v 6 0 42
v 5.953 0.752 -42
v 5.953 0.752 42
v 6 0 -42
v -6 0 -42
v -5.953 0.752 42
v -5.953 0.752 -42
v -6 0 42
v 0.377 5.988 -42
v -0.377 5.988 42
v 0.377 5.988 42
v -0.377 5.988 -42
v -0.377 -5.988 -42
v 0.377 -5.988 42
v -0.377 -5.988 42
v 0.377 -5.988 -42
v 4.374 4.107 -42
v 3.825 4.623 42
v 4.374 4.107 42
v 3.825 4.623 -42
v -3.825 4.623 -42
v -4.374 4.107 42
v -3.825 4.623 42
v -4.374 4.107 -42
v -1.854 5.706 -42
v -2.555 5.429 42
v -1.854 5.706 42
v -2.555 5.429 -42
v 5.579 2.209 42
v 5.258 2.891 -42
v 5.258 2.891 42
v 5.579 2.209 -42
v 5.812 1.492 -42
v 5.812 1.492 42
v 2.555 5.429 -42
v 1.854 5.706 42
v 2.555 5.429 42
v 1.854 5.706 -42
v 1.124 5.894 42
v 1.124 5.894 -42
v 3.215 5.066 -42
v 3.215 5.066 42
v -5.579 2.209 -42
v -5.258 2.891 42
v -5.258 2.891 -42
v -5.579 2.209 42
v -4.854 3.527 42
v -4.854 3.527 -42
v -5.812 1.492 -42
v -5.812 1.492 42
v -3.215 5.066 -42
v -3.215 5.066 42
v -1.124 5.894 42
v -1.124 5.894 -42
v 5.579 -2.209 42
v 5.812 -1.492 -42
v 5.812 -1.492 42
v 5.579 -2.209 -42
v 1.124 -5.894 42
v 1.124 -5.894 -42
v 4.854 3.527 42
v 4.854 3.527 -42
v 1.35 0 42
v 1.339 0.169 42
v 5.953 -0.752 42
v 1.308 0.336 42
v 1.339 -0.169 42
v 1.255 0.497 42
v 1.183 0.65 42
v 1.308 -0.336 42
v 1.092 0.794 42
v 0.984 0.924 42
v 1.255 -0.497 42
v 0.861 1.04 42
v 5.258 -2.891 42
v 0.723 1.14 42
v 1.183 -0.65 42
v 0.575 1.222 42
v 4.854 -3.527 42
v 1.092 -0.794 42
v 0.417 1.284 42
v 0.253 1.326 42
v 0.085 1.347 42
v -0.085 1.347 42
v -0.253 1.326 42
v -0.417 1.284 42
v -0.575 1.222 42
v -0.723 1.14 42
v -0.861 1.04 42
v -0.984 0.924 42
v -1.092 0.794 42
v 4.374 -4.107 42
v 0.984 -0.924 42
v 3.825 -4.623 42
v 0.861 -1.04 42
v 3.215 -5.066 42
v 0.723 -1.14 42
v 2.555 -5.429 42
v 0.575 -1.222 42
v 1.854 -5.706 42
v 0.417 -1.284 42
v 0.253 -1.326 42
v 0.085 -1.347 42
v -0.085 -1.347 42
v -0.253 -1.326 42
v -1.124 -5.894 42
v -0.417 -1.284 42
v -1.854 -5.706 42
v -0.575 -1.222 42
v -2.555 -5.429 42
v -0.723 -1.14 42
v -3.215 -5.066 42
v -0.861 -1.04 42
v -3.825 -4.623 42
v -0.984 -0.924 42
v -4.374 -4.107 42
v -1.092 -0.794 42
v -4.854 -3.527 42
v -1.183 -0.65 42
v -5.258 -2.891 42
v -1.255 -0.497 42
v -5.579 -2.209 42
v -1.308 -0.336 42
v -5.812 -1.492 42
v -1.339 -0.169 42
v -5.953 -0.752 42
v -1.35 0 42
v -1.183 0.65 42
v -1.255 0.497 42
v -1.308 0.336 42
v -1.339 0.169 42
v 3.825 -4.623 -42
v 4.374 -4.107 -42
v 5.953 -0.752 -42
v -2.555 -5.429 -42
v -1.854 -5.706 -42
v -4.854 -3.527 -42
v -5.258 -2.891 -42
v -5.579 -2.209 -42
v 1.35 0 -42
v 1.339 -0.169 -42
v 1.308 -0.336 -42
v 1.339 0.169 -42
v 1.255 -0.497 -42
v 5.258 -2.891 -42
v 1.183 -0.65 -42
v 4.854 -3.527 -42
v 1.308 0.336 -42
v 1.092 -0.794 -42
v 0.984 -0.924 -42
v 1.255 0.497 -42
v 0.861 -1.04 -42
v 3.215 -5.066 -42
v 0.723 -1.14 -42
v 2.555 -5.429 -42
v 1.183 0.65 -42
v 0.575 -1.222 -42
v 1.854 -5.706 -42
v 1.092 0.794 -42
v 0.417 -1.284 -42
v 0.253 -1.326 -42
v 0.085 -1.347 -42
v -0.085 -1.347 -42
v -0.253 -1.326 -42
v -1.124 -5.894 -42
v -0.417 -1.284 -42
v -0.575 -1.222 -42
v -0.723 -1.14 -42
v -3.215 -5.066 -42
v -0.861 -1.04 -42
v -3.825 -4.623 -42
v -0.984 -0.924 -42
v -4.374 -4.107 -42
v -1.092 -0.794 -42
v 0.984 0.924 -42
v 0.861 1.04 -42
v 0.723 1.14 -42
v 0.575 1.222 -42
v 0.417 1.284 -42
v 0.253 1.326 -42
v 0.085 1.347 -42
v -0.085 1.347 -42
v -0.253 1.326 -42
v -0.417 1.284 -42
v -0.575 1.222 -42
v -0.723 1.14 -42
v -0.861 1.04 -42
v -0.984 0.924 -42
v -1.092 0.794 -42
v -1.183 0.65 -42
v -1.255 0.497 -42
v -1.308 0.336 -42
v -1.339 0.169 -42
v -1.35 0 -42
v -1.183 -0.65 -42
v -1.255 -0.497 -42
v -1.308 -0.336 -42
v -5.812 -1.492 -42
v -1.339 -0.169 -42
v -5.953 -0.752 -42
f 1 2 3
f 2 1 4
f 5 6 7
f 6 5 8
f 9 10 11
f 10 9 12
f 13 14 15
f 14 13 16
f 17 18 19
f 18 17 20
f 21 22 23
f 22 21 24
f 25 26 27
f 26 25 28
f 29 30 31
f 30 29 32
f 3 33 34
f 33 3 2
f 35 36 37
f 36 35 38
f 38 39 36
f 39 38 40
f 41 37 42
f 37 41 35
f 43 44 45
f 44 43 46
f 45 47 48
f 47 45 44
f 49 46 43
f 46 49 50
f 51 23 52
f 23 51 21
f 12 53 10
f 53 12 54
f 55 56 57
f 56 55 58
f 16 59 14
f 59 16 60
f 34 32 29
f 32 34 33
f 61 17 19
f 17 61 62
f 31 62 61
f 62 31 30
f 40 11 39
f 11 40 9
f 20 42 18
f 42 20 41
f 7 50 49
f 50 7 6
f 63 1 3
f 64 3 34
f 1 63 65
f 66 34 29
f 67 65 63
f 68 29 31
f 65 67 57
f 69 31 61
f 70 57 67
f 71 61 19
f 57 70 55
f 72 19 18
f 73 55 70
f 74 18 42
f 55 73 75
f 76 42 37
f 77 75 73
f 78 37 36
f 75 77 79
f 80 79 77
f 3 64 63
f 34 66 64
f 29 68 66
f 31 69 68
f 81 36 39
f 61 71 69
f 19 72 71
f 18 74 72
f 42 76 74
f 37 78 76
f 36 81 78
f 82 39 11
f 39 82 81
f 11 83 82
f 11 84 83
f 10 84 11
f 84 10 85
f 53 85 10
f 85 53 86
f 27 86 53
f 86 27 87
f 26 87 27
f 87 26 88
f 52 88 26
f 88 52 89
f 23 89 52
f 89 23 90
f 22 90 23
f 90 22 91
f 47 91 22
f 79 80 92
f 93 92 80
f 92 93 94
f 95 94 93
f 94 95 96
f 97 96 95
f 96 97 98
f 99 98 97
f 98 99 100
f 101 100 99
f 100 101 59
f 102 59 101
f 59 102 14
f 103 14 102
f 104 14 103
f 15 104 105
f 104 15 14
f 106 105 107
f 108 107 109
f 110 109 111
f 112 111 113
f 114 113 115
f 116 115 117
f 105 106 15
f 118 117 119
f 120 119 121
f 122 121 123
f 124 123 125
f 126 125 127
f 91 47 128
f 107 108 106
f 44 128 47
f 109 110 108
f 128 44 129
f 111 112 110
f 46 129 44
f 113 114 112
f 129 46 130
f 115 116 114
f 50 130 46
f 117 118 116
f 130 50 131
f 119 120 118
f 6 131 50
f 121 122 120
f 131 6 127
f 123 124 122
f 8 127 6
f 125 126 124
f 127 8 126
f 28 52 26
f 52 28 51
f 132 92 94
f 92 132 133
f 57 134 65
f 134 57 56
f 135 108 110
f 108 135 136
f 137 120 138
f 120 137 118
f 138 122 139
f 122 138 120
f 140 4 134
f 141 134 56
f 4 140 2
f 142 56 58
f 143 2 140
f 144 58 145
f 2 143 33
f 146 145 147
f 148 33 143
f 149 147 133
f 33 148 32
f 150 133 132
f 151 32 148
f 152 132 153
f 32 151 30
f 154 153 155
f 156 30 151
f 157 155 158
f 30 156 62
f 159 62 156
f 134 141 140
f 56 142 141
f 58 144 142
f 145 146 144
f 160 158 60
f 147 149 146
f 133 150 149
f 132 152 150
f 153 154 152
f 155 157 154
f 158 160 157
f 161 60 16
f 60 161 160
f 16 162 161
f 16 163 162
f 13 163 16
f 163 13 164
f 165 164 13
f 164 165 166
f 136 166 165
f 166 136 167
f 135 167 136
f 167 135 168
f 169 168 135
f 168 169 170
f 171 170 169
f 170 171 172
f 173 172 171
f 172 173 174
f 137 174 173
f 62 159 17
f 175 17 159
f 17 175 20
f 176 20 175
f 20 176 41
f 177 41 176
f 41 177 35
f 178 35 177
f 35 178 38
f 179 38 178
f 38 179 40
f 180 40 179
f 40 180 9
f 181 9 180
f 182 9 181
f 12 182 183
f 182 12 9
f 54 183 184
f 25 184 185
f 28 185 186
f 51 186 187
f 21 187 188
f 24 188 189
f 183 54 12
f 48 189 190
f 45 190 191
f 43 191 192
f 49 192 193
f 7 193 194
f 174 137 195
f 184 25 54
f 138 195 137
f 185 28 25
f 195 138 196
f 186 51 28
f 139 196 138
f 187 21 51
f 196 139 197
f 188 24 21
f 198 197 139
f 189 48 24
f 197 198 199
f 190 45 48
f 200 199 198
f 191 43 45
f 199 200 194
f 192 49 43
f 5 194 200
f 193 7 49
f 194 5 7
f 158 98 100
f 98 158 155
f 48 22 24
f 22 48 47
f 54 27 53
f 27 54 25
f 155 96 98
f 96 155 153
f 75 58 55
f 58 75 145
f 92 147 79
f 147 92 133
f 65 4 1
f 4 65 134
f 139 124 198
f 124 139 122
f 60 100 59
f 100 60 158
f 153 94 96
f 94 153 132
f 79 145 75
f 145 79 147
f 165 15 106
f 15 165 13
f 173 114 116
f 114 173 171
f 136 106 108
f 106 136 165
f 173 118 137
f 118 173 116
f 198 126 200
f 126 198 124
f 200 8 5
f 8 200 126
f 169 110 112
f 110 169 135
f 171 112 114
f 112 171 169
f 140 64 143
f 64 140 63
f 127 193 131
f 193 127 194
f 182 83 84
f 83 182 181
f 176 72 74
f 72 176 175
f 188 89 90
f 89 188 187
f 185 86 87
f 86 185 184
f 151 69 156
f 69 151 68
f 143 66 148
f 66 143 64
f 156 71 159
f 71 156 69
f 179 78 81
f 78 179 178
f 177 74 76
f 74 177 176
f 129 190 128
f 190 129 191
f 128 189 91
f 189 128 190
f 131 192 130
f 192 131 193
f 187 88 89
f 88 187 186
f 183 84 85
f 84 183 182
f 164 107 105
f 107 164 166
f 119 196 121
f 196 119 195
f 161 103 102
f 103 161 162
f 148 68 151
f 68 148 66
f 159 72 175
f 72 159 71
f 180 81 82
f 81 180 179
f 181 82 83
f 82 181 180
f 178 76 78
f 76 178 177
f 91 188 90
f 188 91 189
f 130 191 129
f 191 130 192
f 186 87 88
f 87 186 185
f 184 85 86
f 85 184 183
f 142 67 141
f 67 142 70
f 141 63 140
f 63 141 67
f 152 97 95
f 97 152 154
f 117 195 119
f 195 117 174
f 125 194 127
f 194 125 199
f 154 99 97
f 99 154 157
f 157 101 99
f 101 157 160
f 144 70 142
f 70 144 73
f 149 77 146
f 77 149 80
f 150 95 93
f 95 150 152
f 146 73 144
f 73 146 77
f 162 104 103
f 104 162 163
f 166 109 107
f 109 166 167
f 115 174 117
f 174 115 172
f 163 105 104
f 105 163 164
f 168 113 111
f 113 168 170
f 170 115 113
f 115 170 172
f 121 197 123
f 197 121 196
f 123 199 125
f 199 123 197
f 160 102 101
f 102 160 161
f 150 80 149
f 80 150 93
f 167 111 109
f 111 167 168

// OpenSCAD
$fn = 50;


difference() {
	union() {
		translate(v = [0, 0, -42.0000000000]) {
			cylinder(h = 84, r = 6.0000000000);
		}
	}
	union() {
		translate(v = [0, 0, -100.0000000000]) {
			cylinder(h = 200, r = 1.3500000000);
		}
	}
}
